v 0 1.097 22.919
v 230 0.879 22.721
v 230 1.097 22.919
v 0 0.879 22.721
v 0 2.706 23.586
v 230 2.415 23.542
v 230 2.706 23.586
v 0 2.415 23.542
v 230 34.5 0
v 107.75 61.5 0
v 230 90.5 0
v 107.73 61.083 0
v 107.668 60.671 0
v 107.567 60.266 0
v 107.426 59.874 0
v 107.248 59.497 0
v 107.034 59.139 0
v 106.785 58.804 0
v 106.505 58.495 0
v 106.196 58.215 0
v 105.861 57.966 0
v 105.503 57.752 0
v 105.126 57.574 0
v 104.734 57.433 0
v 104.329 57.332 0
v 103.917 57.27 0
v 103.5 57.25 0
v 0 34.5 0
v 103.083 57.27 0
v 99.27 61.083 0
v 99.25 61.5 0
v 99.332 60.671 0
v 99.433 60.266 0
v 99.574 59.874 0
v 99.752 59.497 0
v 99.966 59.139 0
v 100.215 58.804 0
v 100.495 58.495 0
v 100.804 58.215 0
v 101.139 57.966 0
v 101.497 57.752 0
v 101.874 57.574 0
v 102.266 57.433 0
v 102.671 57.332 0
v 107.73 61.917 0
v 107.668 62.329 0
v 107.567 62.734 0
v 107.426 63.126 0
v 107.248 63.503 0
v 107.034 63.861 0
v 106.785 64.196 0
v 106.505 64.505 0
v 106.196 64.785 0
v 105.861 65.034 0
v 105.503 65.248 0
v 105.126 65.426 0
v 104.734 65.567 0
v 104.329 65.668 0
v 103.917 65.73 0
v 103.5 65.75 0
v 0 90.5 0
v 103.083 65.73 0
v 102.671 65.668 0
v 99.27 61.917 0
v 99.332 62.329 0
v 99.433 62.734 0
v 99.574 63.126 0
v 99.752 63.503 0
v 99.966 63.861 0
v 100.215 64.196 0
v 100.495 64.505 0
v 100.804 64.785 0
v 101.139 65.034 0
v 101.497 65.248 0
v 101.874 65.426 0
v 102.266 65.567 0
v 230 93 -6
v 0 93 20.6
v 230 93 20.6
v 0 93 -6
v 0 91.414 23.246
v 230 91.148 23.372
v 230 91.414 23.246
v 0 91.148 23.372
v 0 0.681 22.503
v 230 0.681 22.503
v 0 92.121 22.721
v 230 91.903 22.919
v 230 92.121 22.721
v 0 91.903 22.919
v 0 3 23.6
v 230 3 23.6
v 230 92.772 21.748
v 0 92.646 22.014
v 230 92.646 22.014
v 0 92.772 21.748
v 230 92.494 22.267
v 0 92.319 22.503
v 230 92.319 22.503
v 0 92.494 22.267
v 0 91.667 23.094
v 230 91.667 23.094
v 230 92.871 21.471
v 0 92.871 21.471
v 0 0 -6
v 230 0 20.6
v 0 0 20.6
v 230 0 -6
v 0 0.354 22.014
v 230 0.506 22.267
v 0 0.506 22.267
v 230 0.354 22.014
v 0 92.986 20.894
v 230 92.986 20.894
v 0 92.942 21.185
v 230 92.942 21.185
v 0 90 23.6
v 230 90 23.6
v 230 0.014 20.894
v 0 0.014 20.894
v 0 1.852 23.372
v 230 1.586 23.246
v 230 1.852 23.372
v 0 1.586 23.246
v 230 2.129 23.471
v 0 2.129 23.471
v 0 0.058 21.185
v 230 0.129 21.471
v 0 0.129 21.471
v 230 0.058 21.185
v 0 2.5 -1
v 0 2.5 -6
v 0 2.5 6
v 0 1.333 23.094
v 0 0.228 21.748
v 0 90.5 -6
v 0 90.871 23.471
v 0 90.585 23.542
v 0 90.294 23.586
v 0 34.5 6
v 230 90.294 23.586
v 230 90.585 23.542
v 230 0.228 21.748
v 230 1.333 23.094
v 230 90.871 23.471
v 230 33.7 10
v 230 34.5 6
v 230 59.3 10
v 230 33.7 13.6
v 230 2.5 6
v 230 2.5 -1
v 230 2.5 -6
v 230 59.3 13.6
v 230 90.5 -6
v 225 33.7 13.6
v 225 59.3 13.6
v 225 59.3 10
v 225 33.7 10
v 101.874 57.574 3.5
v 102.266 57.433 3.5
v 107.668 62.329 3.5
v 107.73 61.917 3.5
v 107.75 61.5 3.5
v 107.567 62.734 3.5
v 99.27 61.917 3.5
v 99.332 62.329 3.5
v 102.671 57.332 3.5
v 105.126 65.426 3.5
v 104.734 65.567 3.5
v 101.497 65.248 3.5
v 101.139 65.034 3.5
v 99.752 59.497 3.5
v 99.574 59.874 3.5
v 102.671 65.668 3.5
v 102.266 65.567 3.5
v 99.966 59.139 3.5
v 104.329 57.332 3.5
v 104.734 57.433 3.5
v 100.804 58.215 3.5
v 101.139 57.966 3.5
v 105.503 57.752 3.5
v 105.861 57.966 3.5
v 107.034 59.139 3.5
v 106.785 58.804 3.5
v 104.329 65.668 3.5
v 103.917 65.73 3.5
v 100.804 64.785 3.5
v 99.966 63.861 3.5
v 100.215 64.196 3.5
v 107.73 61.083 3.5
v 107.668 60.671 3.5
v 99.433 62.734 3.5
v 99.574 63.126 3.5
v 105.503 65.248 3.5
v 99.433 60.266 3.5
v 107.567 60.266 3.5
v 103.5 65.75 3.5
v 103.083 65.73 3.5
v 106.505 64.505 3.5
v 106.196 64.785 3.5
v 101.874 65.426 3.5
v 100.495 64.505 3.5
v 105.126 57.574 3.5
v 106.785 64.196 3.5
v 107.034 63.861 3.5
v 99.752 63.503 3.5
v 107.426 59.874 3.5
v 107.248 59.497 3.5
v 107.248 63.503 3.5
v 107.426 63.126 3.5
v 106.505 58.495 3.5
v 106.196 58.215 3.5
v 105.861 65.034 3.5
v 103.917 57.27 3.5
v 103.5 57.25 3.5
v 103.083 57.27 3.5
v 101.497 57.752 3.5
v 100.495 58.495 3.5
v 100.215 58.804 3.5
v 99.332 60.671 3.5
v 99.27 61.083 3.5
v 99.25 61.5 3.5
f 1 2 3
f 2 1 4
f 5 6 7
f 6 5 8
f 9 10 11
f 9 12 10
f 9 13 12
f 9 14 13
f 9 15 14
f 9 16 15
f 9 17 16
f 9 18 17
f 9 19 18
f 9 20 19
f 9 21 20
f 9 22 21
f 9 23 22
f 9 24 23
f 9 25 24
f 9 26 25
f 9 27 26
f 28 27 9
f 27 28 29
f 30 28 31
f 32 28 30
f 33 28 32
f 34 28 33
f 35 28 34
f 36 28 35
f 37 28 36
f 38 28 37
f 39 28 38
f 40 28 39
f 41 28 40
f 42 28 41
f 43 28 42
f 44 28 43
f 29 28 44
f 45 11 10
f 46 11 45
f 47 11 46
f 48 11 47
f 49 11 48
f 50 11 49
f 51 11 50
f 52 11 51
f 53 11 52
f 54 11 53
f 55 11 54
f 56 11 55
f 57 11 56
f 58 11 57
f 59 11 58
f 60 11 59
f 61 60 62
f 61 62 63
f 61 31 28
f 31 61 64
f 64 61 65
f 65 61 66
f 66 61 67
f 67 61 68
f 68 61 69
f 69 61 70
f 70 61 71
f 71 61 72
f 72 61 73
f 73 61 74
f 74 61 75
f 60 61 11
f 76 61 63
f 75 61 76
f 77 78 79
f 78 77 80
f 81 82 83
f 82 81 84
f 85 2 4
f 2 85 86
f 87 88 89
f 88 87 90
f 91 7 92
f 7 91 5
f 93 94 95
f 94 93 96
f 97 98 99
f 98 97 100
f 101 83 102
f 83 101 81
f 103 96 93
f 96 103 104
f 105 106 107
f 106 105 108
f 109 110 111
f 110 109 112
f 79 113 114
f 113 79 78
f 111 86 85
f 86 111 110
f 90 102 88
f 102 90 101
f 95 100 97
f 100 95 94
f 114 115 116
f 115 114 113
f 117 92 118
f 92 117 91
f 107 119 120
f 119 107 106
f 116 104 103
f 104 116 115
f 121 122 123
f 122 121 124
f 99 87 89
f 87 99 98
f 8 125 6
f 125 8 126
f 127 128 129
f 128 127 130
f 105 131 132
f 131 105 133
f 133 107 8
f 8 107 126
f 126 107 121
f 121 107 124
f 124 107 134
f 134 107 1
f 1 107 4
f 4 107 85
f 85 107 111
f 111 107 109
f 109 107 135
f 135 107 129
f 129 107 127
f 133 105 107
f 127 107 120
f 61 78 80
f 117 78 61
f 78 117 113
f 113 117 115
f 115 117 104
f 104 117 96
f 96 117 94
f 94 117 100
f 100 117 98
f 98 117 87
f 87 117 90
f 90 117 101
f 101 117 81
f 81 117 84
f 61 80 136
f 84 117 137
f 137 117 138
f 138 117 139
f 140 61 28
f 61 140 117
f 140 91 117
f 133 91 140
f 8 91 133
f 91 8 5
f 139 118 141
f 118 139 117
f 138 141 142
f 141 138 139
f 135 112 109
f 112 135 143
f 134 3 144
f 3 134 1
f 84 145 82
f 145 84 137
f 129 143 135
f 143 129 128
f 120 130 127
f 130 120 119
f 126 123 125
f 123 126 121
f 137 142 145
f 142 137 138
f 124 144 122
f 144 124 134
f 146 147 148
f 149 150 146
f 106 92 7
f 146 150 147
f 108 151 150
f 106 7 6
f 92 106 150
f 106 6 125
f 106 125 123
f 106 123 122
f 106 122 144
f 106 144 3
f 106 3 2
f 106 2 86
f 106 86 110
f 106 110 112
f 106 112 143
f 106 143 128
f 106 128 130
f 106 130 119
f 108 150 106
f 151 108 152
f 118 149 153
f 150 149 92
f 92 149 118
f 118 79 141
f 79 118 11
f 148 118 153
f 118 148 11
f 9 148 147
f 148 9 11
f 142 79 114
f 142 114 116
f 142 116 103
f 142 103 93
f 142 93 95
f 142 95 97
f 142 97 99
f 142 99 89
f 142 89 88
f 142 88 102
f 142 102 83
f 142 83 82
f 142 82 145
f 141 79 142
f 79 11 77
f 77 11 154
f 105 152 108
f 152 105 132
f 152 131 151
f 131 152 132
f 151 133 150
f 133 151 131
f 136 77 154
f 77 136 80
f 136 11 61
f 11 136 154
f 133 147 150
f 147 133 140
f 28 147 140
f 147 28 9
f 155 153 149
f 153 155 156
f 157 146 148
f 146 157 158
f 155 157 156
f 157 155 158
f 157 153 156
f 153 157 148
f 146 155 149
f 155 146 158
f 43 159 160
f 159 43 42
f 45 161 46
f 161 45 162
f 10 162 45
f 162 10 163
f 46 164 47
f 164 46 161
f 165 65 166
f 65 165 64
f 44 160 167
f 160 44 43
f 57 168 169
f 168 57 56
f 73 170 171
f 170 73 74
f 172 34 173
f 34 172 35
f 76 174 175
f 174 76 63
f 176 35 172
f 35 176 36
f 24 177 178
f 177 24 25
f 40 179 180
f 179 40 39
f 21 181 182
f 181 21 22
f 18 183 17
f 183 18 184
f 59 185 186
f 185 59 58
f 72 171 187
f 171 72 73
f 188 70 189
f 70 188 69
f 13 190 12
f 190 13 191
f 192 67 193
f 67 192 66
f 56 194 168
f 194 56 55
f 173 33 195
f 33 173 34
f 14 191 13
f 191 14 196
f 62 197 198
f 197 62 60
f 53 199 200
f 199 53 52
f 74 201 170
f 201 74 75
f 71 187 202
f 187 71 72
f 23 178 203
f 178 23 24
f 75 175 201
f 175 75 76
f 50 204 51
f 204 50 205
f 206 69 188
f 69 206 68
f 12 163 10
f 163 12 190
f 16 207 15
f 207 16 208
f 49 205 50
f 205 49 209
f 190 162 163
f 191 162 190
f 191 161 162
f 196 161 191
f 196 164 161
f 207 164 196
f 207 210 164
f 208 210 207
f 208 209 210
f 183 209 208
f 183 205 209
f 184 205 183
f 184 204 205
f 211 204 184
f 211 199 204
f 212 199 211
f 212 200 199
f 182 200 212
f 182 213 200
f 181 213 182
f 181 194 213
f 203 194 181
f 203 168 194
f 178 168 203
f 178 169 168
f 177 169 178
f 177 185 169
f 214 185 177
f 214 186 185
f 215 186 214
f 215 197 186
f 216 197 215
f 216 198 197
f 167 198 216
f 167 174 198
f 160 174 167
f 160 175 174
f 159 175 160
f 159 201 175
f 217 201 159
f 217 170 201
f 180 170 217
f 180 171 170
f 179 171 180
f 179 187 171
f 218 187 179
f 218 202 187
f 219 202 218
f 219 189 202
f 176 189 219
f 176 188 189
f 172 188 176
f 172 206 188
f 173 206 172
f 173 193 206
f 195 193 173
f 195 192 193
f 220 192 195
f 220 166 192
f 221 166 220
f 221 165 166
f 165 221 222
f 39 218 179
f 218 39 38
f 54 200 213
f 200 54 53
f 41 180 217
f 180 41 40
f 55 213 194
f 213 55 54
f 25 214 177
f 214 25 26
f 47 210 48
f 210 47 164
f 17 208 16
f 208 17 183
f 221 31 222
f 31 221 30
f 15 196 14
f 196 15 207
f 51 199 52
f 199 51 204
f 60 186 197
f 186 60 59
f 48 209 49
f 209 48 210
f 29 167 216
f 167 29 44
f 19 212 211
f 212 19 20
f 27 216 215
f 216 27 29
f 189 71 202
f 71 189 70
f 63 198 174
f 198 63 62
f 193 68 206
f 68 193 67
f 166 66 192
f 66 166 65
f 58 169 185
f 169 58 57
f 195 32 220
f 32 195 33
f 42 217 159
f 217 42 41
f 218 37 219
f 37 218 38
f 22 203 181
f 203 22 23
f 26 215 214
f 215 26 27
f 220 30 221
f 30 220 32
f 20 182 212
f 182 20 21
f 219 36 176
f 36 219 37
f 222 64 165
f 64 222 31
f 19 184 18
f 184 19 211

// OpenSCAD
// Abdeckung R730 — Segment 3 (Wand) v3
// Sattel-Profil: beide Seiten 6mm heruntergezogen
// Nut bei X=230 → nimmt Feder von Segment 2 auf
// X=0 = freie Wandkante
// ——————————————————————————————————————————

$fn = 64;

laenge  = 230;
breite  = 93;    // 88mm Innenmaß + 2× 2.5mm Gegenrand
hoehe   = 23.6;
r       = 3;

// Absatz (Rack-Ear)
absatz_y = 31;
absatz_z = 6;

// Gegenrand
rand_staerke = 2.5;
rand_tiefe   = 6;

// Nut
nf_breite  = 25;
nf_hoehe   = 3;
nf_tiefe   = 5;
nut_breite = nf_breite + 0.6;
nut_hoehe  = nf_hoehe  + 0.6;
nut_tiefe  = nf_tiefe  + 1;
nut_y      = (breite - nut_breite) / 2;
nut_z      = (hoehe  - nut_hoehe)  / 2;

module grundkoerper() {
    hull() {
        cube([laenge, breite, 0.01]);

        translate([0, r, hoehe - r])
            rotate([0, 90, 0])
            cylinder(r=r, h=laenge);

        translate([0, breite - r, hoehe - r])
            rotate([0, 90, 0])
            cylinder(r=r, h=laenge);
    }
}

difference() {
    union() {
        grundkoerper();

        // ——— Gegenrand Y=0-Seite ———
        translate([0, 0, -rand_tiefe])
            cube([laenge, rand_staerke, rand_tiefe + 0.01]);

        // ——— Gegenrand Y=breite-Seite ———
        translate([0, breite - rand_staerke, -rand_tiefe])
            cube([laenge, rand_staerke, rand_tiefe + 0.01]);
    }

    // ——— Absatz: Rack-Ear ———
    // Y=rand_staerke → hängende Wand (Y=0..2.5) bleibt erhalten
    translate([-1, rand_staerke, -1])
        cube([laenge+2, absatz_y+1, absatz_z+1]);

    // ——— Nut hinten (X=230) ———
    translate([laenge-nf_tiefe, nut_y, nut_z])
        cube([nut_tiefe, nut_breite, nut_hoehe]);

    // ——— Shoulder Screw Vertiefung Knopf 4 ———
    // 586.5mm ab Vorderkante → 126.5mm in Seg3 → X = 230-126.5 = 103.5mm
    // Y = 93-31.5 = 61.5mm (identisch K1-K3)
    translate([103.5, 93-31.5, -1])
        cylinder(r=4.25, h=3.5+1);
}

echo("Segment 3 — Wand v3");
echo("Nut bei X=230, freie Kante bei X=0");
echo("Außenbreite:", breite, "mm — Innenmaß: 88mm");
